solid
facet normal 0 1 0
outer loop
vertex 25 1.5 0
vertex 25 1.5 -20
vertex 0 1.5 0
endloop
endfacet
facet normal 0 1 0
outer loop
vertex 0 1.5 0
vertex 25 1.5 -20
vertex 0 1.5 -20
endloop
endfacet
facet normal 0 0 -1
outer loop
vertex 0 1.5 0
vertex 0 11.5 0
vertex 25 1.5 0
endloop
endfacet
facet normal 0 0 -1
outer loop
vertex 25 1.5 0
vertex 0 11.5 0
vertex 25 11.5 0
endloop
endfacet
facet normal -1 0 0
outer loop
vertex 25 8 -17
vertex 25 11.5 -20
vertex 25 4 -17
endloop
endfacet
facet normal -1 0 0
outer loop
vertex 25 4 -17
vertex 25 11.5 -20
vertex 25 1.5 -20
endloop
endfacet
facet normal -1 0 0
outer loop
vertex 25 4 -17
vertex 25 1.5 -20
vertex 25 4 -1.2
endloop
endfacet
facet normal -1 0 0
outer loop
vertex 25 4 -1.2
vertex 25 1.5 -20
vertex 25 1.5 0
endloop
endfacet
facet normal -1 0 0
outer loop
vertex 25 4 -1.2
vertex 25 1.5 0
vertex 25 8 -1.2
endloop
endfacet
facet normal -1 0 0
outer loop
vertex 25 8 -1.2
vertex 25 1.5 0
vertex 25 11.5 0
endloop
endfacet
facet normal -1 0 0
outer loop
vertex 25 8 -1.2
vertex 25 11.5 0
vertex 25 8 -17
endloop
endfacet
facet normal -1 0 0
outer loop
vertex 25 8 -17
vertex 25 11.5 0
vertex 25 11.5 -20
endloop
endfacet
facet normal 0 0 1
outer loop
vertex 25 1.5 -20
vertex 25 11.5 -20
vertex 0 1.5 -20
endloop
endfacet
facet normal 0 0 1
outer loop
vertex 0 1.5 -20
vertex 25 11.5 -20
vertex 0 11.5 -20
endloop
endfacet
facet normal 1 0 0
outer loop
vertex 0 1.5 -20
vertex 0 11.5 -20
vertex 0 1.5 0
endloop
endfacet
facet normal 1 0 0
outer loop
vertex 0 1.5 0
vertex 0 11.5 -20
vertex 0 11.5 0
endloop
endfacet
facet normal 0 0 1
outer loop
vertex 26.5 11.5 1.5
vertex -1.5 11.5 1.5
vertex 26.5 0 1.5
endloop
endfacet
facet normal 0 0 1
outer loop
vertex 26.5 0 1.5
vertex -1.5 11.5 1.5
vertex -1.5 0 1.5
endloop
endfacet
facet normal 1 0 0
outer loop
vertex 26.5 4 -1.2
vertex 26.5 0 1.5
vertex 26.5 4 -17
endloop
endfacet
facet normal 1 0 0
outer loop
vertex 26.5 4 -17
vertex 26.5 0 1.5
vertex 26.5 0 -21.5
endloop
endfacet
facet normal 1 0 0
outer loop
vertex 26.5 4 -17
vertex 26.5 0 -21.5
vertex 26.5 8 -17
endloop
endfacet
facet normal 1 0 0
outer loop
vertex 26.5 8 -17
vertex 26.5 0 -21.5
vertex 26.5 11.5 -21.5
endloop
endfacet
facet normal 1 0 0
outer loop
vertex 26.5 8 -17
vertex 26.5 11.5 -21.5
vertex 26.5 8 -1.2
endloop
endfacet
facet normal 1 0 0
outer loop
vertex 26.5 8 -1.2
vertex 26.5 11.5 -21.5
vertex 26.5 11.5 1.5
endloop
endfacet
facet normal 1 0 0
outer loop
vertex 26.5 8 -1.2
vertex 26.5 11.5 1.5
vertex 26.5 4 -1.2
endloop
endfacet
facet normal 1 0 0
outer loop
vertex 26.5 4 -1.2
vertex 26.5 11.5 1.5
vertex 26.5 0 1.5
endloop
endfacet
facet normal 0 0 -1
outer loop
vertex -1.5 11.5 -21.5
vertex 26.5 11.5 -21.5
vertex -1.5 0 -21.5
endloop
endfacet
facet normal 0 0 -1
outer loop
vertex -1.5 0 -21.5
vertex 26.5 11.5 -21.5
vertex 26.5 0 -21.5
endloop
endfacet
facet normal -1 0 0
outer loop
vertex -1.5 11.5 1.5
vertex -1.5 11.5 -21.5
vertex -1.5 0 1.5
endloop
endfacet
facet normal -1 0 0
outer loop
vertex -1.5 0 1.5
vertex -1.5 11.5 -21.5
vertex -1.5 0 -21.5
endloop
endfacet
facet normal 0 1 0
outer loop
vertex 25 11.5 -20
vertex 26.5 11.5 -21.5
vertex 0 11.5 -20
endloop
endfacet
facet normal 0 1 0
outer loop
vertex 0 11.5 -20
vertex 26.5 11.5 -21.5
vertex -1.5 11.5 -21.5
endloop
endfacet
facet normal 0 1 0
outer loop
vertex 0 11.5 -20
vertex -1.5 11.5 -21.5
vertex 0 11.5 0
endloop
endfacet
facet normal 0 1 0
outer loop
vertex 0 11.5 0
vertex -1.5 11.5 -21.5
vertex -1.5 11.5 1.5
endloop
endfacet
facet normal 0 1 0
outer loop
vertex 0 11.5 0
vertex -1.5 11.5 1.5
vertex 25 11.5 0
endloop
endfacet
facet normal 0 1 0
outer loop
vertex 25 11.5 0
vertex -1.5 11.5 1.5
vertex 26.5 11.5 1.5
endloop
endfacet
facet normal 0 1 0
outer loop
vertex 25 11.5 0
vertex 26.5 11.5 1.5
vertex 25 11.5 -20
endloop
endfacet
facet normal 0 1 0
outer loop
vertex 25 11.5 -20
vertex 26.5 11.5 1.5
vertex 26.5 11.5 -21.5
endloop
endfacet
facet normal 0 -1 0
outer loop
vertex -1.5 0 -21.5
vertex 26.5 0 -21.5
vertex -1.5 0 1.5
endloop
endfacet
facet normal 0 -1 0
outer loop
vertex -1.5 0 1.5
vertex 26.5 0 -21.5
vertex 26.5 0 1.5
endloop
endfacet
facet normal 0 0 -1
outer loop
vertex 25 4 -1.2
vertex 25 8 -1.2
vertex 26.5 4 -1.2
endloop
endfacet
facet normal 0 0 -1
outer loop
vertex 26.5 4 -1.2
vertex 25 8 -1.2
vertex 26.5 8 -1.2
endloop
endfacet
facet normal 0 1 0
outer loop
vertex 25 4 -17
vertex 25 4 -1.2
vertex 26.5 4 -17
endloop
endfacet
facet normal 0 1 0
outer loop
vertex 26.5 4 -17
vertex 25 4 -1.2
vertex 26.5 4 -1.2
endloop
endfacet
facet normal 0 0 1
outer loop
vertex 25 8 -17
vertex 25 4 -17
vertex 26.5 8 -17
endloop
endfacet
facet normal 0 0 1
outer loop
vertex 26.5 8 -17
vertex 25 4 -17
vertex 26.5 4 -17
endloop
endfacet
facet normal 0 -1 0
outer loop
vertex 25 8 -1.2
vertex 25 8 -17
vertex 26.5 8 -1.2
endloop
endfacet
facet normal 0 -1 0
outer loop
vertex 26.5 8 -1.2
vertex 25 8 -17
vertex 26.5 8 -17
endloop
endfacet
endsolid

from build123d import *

# Parameters (mm, degrees)
SKETCH1_W           = 25
SKETCH1_H           = 20
BOSS_EXTRUDE1_DEPTH = 1.5
SKETCH2_W           = 28
SKETCH2_H           = 23
SKETCH2_W_2         = 25
SKETCH2_H_2         = 20
BOSS_EXTRUDE2_DEPTH = 11.5
SKETCH3_W           = 15.8
SKETCH3_H           = 4
CUT_EXTRUDE1_DEPTH  = 10


with BuildPart() as part:
    # Sketch1 → Boss-Extrude1 (new body)
    with BuildSketch(Plane(origin=(0, 0, 0), x_dir=(1, 0, 0), z_dir=(0, 1, 0))):
        with Locations((12.5, 10)):
            Rectangle(SKETCH1_W, SKETCH1_H)
    extrude(amount=BOSS_EXTRUDE1_DEPTH)

    # Sketch2 → Boss-Extrude2 (add)
    with BuildSketch(Plane.XZ):
        with Locations((12.5, -10)):
            Rectangle(SKETCH2_W, SKETCH2_H)
        with Locations((12.5, -10)):
            Rectangle(SKETCH2_W_2, SKETCH2_H_2, mode=Mode.SUBTRACT)
    extrude(amount=-BOSS_EXTRUDE2_DEPTH)

    # Sketch3 → Cut-Extrude1 (cut)
    with BuildSketch(Plane.ZY.offset(-25)):
        with Locations((-9.1, 6)):
            Rectangle(SKETCH3_W, SKETCH3_H)
    extrude(amount=-CUT_EXTRUDE1_DEPTH, mode=Mode.SUBTRACT)


solid = part.part
